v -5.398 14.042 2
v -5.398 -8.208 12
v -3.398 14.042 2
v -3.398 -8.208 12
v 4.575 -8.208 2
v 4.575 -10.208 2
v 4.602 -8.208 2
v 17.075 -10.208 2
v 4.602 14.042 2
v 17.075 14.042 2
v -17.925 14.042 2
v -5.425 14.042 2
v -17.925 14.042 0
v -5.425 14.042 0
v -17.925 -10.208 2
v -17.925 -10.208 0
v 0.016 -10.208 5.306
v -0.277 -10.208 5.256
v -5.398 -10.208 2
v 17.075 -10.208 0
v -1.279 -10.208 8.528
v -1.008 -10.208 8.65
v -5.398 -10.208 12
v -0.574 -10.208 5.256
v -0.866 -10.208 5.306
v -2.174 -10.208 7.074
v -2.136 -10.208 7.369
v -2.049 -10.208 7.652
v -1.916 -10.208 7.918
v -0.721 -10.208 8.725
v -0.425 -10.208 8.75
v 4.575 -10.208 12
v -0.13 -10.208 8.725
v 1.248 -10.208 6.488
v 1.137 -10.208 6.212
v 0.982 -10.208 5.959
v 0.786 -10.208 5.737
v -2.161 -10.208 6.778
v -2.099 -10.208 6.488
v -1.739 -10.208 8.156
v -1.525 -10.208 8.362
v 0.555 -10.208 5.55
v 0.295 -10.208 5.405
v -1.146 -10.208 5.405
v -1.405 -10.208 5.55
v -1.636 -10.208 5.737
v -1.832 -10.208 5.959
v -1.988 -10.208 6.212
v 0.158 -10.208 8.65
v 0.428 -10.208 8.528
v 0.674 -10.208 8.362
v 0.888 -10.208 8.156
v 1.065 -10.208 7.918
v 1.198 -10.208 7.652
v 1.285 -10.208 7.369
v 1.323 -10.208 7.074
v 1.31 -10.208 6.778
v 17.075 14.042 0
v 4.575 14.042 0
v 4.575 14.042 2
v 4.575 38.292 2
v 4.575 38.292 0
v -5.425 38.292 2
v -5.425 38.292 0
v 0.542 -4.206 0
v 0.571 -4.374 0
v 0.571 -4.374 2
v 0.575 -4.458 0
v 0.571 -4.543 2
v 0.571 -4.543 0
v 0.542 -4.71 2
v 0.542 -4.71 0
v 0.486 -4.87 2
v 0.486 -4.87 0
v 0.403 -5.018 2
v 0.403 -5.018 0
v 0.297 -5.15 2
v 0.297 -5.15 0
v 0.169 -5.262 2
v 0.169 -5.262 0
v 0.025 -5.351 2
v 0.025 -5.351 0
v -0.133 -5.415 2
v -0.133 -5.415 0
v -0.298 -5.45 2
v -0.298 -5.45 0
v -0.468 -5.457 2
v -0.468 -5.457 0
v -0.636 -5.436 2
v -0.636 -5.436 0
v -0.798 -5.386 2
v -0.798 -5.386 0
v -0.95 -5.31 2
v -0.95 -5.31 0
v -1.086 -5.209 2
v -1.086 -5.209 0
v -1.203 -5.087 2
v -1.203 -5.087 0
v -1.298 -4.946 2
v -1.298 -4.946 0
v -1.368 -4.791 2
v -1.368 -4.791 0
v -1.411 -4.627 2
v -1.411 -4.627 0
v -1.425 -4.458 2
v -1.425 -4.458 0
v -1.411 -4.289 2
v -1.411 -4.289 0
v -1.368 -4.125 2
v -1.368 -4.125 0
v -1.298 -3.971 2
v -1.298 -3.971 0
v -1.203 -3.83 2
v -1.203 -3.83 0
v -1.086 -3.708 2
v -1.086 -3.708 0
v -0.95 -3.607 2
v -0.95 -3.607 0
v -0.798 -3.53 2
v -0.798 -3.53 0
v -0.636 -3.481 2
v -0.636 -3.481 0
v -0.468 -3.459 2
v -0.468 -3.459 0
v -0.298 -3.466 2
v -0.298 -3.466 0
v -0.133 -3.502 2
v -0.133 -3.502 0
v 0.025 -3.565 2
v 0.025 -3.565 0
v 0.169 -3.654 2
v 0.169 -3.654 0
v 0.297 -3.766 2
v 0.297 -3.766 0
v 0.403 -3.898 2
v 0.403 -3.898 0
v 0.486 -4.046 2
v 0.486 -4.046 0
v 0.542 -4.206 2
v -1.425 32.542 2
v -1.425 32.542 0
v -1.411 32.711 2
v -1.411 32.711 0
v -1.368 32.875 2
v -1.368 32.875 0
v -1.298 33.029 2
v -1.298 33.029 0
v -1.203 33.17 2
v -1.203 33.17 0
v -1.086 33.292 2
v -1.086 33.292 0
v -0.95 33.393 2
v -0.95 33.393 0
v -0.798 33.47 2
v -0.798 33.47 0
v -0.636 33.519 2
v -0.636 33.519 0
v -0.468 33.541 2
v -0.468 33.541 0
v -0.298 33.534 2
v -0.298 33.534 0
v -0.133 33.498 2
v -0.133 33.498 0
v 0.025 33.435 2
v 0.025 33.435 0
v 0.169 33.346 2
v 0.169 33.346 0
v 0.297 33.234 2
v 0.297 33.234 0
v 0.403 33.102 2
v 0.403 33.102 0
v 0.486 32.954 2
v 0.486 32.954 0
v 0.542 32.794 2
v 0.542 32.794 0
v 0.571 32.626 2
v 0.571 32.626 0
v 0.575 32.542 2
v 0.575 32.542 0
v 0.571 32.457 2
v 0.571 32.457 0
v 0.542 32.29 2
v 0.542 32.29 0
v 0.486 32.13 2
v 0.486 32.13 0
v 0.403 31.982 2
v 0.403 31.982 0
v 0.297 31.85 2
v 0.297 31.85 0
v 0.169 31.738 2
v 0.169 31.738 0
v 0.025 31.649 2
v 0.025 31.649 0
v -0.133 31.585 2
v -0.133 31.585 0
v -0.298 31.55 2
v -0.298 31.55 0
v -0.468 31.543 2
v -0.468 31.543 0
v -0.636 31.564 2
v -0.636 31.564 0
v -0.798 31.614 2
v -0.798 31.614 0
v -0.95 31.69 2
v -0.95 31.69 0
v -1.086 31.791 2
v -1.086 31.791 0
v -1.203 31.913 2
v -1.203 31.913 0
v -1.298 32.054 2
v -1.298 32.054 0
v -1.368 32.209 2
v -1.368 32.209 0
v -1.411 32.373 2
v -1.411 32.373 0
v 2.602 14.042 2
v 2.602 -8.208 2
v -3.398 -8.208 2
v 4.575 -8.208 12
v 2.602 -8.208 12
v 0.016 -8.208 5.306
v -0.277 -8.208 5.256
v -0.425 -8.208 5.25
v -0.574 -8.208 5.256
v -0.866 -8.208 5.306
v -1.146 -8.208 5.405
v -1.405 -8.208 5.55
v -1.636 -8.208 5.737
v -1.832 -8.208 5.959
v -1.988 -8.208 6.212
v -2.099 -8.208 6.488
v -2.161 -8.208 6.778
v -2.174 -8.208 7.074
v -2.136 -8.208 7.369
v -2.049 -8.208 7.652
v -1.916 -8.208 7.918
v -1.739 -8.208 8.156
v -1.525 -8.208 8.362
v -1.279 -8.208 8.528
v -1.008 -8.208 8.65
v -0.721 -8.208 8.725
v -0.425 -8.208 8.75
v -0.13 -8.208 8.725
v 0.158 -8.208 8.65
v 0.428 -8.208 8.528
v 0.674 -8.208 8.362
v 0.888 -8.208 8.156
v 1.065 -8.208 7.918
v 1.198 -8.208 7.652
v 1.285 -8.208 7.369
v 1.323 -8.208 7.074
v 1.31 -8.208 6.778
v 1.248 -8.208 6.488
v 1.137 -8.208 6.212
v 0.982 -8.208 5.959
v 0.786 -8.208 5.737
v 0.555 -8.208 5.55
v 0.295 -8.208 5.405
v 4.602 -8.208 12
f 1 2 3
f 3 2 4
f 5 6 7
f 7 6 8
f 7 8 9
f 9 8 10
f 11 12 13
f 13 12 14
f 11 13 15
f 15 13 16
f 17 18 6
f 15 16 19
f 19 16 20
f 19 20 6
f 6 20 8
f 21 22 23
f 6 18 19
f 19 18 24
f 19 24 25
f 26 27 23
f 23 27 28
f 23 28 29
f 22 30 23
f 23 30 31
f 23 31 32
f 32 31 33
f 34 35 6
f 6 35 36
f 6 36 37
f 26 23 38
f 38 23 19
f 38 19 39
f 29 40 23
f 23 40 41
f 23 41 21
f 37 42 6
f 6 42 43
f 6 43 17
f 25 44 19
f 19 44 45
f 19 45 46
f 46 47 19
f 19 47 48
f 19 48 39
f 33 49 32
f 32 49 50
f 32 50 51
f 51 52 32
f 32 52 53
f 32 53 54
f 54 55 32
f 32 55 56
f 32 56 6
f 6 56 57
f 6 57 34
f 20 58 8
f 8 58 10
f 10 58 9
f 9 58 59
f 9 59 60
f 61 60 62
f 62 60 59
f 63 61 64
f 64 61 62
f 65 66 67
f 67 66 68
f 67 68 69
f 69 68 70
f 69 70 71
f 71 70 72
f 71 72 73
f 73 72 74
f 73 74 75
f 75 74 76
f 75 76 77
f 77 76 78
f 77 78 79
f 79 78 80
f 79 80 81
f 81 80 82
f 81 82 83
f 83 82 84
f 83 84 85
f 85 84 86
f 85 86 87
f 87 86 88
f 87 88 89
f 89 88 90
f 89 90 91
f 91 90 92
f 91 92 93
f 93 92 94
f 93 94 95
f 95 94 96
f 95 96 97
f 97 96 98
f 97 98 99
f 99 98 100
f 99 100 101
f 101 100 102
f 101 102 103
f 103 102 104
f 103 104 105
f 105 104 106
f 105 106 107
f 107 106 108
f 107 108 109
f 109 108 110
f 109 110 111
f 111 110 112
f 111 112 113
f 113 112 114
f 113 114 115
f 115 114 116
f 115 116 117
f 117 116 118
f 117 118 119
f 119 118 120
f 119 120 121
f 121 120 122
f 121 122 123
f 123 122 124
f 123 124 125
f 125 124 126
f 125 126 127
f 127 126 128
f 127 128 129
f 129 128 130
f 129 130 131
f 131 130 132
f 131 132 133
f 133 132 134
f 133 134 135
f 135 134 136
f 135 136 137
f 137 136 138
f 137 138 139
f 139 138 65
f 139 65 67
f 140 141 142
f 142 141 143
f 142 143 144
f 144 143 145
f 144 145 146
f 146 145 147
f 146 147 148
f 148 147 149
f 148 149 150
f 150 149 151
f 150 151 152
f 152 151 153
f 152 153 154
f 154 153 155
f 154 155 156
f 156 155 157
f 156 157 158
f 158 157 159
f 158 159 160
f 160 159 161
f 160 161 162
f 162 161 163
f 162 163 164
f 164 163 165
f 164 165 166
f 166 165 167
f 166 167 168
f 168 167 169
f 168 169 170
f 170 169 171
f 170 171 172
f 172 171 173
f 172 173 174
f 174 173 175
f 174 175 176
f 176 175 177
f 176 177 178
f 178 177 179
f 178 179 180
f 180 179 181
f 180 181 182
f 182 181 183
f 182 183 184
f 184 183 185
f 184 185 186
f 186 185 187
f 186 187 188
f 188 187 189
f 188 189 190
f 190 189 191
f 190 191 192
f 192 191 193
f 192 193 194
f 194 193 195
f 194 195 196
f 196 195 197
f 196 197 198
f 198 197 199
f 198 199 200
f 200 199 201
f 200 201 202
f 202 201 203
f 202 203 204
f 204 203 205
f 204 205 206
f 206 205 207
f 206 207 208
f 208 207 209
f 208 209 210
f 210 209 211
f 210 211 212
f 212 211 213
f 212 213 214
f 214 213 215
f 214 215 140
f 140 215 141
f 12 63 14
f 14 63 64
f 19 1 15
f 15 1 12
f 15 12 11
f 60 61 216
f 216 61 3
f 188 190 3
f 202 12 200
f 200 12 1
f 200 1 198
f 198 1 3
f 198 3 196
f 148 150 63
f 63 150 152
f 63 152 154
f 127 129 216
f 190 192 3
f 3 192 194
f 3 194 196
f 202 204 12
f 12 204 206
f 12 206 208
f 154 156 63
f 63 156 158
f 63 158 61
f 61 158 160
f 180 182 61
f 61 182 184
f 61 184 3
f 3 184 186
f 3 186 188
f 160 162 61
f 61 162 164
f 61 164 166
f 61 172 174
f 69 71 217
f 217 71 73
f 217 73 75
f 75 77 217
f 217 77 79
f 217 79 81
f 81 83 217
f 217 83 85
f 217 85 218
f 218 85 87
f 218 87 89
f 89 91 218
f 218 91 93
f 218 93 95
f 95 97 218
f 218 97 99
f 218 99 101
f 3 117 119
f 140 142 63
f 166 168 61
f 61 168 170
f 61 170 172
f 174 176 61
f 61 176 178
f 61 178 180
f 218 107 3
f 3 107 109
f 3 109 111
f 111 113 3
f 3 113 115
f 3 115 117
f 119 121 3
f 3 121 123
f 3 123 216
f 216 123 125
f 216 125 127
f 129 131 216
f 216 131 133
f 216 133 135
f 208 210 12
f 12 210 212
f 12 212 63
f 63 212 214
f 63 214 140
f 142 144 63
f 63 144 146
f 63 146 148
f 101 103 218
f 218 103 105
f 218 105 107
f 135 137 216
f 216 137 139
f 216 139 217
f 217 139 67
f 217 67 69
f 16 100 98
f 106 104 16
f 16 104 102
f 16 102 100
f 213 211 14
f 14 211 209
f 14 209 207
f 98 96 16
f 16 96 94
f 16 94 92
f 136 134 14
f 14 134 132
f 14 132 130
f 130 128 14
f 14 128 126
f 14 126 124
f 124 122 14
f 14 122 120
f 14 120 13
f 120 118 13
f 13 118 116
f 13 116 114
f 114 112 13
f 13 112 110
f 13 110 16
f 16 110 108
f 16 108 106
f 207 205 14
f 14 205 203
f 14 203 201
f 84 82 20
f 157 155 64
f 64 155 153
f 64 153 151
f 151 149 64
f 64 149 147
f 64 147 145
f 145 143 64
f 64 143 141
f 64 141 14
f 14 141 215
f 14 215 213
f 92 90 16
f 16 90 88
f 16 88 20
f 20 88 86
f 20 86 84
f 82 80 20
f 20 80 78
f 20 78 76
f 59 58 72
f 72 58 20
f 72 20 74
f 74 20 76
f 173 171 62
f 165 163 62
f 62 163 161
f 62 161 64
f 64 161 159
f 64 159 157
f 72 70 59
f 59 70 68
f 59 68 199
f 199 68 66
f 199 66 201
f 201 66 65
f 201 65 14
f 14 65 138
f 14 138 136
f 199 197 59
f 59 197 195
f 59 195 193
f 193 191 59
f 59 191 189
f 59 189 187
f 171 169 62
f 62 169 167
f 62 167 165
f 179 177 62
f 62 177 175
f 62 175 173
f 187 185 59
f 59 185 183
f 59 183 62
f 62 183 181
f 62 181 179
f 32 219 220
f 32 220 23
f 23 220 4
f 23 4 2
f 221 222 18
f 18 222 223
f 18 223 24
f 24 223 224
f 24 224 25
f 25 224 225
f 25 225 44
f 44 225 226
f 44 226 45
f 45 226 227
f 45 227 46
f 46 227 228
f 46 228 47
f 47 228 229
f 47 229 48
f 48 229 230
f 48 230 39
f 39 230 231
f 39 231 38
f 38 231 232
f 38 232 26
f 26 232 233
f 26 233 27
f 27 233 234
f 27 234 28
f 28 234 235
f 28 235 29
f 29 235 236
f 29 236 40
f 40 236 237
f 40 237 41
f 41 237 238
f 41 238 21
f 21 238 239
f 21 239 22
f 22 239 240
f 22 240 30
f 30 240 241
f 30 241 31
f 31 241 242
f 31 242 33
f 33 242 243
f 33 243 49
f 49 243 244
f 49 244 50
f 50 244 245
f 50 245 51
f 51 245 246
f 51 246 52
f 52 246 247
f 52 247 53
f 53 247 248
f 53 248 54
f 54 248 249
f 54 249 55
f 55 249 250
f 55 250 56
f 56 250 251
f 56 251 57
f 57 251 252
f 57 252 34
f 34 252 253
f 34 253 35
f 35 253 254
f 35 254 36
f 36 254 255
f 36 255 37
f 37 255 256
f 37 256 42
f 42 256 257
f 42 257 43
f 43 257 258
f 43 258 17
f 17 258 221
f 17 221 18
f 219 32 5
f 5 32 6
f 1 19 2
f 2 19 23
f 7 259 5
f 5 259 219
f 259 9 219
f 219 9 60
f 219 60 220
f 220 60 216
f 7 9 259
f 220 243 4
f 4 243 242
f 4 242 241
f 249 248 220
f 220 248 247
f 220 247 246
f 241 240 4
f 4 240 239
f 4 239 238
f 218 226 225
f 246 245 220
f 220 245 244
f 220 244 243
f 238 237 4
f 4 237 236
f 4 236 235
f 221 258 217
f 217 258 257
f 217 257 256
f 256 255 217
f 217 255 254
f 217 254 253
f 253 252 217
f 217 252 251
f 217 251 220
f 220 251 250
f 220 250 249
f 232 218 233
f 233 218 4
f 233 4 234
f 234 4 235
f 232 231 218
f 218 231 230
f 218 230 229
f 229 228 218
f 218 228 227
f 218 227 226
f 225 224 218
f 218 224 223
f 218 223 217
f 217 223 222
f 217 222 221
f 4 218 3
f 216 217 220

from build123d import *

# Parameters (mm, degrees)
ESBO_O1_R                = 1
RESSALTO_EXTRUS_O1_DEPTH = 2
ESBO_O2_W                = 35
ESBO_O2_H                = 2
RESSALTO_EXTRUS_O2_DEPTH = 10
ESBO_O3_R                = 1.75
CORTE_EXTRUS_O1_DEPTH    = 10
ESBO_O4_W                = 12.527176897
ESBO_O4_H                = 10
ESBO_O4_W_2              = 12.5
CORTE_EXTRUS_O2_DEPTH    = 10
RESSALTO_EXTRUS_O3_DEPTH = 10
ESBO_O6_W                = 6
ESBO_O6_H                = 22.25
CORTE_EXTRUS_O3_DEPTH    = 10


with BuildPart() as part:
    # Esboço1 → Ressalto-extrusão1 (new body)
    with BuildSketch(Plane.XY):
        Polygon((-17.925350174, 14.041666667), (-5.425350174, 14.041666667), (-5.425350174, 38.291666667), (4.574649826, 38.291666667), (4.574649826, 14.041666667), (17.074649826, 14.041666667), (17.074649826, -10.208333333), (-17.925350174, -10.208333333), align=None)
        with Locations((-0.425350174, 32.541666667)):
            Circle(ESBO_O1_R, mode=Mode.SUBTRACT)
        with Locations((-0.425350174, -4.458333333)):
            Circle(ESBO_O1_R, mode=Mode.SUBTRACT)
    extrude(amount=RESSALTO_EXTRUS_O1_DEPTH)

    # Esboço2 → Ressalto-extrusão2 (add)
    with BuildSketch(Plane.XY.offset(2)):
        with Locations((-0.425350174, -9.208333333)):
            Rectangle(ESBO_O2_W, ESBO_O2_H)
    extrude(amount=RESSALTO_EXTRUS_O2_DEPTH)

    # Esboço3 → Corte-extrusão1 (cut)
    with BuildSketch(Plane(origin=(0, -8.208333333, 0), x_dir=(1, 0, 0), z_dir=(0, 1, 0))):
        with Locations(Location((-0.425350174, -7, 0), (0, 0, 270))):
            Circle(ESBO_O3_R)
    extrude(amount=-CORTE_EXTRUS_O1_DEPTH, mode=Mode.SUBTRACT)

    # Esboço4 → Corte-extrusão2 (cut)
    with BuildSketch(Plane(origin=(0, -8.208333333, 0), x_dir=(1, 0, 0), z_dir=(0, 1, 0))):
        with Locations((-11.661761726, -7)):
            Rectangle(ESBO_O4_W, ESBO_O4_H)
        with Locations((10.824649826, -7)):
            Rectangle(ESBO_O4_W_2, ESBO_O4_H)
    extrude(amount=-CORTE_EXTRUS_O2_DEPTH, mode=Mode.SUBTRACT)

    # Esboço5 → Ressalto-extrusão3 (add)
    with BuildSketch(Plane.ZY.offset(5.398173277)):
        Polygon((12, -8.208333333), (2, 14.041666667), (2, -8.208333333), align=None)
    extrude(amount=-RESSALTO_EXTRUS_O3_DEPTH)

    # Esboço6 → Corte-extrusão3 (cut)
    with BuildSketch(Plane.XY.offset(12)):
        with Locations((-0.398173277, 2.916666667)):
            Rectangle(ESBO_O6_W, ESBO_O6_H)
    extrude(amount=-CORTE_EXTRUS_O3_DEPTH, mode=Mode.SUBTRACT)


solid = part.part
